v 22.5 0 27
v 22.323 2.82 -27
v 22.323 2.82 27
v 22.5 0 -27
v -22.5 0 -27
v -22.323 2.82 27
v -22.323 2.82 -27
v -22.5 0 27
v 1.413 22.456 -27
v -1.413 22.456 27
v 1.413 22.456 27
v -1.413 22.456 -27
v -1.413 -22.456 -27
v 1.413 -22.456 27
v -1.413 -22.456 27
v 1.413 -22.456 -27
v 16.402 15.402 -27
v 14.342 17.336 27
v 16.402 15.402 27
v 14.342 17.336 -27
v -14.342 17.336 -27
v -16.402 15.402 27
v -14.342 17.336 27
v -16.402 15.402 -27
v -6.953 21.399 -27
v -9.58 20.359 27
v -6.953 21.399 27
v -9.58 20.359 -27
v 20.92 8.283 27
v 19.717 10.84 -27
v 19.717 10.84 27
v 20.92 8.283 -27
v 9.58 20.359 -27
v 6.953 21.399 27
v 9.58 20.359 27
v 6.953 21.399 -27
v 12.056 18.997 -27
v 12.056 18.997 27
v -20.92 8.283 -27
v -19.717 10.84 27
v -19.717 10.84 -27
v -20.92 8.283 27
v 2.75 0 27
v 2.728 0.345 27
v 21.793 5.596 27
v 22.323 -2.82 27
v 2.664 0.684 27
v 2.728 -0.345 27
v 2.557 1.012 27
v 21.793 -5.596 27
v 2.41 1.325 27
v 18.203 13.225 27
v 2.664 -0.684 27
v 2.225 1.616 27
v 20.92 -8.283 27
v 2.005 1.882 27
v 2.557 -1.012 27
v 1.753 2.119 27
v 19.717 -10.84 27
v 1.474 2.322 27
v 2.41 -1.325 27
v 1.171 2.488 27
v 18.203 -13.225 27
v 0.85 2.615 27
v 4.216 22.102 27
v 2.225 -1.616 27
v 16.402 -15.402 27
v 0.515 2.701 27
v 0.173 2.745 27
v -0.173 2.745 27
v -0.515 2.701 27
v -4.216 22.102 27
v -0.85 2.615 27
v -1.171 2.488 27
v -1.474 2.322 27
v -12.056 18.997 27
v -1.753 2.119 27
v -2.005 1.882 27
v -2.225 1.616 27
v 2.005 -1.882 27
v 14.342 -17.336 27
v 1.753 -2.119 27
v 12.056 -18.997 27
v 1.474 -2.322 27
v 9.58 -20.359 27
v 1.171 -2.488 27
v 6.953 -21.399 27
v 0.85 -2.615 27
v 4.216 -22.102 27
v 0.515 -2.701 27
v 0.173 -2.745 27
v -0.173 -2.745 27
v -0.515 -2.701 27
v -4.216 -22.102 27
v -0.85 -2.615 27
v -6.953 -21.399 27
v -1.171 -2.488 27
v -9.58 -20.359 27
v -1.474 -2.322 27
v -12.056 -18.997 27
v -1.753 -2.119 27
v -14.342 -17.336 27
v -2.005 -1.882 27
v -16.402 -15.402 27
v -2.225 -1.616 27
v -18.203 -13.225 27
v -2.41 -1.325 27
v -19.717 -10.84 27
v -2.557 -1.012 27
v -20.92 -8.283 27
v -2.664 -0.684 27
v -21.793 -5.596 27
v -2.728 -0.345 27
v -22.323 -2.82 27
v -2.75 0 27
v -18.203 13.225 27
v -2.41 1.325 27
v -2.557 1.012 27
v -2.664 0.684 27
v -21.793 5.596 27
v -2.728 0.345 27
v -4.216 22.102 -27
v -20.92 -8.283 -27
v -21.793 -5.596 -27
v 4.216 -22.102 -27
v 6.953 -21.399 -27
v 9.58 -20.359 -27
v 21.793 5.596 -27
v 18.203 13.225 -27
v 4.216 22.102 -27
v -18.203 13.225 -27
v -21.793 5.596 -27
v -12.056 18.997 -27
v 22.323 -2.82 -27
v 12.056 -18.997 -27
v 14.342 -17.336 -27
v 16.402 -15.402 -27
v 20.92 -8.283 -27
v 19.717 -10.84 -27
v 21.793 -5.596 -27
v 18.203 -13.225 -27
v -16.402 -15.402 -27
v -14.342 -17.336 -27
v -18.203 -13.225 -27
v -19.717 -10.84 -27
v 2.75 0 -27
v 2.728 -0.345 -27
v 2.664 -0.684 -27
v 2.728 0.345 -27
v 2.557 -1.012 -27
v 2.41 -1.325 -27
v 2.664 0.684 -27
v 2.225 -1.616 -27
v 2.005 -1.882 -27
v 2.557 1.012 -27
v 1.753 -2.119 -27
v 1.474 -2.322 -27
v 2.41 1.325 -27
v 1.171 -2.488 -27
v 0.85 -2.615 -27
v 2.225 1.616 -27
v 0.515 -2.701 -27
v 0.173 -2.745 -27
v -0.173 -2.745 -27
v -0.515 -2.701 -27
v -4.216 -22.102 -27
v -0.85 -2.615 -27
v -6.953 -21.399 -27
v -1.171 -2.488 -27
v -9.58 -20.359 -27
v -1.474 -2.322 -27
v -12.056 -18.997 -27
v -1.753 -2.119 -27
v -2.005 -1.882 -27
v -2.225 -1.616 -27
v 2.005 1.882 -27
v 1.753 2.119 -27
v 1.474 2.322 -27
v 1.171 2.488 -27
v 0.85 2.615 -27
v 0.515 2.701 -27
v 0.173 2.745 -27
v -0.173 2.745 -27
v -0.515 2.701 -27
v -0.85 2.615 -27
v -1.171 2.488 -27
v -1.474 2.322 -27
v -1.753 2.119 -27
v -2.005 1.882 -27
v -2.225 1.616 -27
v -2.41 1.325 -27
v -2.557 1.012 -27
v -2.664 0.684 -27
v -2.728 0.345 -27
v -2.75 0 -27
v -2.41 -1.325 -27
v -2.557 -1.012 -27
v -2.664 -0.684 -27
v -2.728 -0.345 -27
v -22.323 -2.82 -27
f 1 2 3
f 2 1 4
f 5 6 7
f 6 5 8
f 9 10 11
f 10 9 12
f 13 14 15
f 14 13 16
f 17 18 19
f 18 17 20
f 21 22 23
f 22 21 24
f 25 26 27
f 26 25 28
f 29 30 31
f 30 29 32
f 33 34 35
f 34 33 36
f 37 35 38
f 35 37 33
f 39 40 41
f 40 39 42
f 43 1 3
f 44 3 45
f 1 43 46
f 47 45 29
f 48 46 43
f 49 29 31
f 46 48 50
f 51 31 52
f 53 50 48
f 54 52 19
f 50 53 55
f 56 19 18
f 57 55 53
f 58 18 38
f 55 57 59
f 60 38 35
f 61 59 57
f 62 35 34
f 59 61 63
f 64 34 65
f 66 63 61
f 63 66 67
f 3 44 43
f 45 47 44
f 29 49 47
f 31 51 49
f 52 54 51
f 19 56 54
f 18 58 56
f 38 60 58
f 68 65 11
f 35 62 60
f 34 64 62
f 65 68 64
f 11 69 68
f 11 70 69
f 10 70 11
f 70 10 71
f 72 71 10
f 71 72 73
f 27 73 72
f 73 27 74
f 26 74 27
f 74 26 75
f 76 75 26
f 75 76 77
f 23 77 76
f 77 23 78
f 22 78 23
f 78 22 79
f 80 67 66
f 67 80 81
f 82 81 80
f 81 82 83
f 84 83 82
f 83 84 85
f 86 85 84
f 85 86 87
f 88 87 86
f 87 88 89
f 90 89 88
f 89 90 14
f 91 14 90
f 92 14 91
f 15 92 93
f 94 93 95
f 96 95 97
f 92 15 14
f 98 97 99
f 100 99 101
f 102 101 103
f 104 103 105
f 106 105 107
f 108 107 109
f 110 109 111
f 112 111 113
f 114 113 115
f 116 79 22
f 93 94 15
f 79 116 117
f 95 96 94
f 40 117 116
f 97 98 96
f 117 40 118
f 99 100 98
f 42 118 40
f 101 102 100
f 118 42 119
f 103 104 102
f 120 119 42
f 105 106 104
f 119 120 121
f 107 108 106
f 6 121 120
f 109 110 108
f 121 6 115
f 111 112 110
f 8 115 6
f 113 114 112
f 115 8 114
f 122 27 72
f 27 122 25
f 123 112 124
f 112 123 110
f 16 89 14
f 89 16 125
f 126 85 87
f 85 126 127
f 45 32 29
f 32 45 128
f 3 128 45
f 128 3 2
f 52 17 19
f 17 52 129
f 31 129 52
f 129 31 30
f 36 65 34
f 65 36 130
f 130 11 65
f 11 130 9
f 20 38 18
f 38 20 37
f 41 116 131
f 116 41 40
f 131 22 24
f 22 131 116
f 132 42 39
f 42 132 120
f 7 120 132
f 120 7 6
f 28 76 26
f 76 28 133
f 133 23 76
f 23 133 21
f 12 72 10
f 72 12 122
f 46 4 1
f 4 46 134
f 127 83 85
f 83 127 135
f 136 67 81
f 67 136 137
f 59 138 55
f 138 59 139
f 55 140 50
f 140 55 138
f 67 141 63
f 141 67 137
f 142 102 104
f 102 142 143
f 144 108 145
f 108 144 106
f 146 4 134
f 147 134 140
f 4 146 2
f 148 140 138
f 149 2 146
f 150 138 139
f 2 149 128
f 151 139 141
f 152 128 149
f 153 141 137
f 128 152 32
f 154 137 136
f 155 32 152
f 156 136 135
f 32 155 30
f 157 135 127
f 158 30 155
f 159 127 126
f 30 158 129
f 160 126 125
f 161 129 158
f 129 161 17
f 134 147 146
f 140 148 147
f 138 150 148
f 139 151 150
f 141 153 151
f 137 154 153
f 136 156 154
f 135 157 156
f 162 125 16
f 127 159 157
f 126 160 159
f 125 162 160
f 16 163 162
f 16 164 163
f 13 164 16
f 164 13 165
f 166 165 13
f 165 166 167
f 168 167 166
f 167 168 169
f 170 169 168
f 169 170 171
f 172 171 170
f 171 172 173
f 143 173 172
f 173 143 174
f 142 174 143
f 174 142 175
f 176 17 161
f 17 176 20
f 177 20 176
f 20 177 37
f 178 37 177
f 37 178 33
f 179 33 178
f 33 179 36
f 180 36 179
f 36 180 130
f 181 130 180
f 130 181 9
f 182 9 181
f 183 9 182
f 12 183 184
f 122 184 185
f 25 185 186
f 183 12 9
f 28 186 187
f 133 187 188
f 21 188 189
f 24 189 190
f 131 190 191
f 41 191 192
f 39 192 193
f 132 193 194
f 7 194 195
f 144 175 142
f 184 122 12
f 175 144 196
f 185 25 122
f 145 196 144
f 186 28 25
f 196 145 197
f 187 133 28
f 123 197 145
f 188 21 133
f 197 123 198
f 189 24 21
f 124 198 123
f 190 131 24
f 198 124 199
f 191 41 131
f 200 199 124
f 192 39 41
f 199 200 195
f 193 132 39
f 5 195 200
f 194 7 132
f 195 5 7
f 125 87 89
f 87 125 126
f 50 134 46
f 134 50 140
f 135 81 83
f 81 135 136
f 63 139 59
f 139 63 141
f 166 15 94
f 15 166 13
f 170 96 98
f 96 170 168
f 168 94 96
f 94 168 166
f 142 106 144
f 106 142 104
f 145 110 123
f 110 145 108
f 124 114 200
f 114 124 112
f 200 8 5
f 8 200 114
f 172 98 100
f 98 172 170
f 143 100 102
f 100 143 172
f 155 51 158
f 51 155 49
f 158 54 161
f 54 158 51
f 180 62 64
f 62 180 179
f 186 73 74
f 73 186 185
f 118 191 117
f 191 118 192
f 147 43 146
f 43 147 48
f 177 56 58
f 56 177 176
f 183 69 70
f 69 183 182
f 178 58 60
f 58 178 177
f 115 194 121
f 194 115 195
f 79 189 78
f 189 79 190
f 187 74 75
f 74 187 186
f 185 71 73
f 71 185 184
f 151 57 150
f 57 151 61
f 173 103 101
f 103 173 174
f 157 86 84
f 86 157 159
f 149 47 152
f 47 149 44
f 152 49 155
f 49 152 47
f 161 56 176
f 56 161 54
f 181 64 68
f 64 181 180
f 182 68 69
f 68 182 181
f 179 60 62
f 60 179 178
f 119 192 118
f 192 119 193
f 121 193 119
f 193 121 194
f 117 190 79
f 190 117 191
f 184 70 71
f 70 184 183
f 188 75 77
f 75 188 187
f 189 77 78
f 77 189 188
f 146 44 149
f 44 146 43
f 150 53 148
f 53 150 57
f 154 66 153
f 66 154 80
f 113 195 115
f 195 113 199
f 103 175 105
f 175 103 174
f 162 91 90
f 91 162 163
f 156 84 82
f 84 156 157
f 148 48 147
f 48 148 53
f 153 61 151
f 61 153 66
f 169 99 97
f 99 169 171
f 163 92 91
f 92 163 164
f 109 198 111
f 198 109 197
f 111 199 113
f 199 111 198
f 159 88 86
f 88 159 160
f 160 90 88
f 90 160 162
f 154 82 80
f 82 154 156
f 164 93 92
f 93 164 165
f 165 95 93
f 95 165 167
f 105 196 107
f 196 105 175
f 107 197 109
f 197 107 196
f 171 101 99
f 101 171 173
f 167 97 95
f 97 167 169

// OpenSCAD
$fn = 50;


difference() {
	union() {
		translate(v = [0, 0, -27.0000000000]) {
			cylinder(h = 54, r = 22.5000000000);
		}
	}
	union() {
		translate(v = [0, 0, -100.0000000000]) {
			cylinder(h = 200, r = 2.7500000000);
		}
	}
}
